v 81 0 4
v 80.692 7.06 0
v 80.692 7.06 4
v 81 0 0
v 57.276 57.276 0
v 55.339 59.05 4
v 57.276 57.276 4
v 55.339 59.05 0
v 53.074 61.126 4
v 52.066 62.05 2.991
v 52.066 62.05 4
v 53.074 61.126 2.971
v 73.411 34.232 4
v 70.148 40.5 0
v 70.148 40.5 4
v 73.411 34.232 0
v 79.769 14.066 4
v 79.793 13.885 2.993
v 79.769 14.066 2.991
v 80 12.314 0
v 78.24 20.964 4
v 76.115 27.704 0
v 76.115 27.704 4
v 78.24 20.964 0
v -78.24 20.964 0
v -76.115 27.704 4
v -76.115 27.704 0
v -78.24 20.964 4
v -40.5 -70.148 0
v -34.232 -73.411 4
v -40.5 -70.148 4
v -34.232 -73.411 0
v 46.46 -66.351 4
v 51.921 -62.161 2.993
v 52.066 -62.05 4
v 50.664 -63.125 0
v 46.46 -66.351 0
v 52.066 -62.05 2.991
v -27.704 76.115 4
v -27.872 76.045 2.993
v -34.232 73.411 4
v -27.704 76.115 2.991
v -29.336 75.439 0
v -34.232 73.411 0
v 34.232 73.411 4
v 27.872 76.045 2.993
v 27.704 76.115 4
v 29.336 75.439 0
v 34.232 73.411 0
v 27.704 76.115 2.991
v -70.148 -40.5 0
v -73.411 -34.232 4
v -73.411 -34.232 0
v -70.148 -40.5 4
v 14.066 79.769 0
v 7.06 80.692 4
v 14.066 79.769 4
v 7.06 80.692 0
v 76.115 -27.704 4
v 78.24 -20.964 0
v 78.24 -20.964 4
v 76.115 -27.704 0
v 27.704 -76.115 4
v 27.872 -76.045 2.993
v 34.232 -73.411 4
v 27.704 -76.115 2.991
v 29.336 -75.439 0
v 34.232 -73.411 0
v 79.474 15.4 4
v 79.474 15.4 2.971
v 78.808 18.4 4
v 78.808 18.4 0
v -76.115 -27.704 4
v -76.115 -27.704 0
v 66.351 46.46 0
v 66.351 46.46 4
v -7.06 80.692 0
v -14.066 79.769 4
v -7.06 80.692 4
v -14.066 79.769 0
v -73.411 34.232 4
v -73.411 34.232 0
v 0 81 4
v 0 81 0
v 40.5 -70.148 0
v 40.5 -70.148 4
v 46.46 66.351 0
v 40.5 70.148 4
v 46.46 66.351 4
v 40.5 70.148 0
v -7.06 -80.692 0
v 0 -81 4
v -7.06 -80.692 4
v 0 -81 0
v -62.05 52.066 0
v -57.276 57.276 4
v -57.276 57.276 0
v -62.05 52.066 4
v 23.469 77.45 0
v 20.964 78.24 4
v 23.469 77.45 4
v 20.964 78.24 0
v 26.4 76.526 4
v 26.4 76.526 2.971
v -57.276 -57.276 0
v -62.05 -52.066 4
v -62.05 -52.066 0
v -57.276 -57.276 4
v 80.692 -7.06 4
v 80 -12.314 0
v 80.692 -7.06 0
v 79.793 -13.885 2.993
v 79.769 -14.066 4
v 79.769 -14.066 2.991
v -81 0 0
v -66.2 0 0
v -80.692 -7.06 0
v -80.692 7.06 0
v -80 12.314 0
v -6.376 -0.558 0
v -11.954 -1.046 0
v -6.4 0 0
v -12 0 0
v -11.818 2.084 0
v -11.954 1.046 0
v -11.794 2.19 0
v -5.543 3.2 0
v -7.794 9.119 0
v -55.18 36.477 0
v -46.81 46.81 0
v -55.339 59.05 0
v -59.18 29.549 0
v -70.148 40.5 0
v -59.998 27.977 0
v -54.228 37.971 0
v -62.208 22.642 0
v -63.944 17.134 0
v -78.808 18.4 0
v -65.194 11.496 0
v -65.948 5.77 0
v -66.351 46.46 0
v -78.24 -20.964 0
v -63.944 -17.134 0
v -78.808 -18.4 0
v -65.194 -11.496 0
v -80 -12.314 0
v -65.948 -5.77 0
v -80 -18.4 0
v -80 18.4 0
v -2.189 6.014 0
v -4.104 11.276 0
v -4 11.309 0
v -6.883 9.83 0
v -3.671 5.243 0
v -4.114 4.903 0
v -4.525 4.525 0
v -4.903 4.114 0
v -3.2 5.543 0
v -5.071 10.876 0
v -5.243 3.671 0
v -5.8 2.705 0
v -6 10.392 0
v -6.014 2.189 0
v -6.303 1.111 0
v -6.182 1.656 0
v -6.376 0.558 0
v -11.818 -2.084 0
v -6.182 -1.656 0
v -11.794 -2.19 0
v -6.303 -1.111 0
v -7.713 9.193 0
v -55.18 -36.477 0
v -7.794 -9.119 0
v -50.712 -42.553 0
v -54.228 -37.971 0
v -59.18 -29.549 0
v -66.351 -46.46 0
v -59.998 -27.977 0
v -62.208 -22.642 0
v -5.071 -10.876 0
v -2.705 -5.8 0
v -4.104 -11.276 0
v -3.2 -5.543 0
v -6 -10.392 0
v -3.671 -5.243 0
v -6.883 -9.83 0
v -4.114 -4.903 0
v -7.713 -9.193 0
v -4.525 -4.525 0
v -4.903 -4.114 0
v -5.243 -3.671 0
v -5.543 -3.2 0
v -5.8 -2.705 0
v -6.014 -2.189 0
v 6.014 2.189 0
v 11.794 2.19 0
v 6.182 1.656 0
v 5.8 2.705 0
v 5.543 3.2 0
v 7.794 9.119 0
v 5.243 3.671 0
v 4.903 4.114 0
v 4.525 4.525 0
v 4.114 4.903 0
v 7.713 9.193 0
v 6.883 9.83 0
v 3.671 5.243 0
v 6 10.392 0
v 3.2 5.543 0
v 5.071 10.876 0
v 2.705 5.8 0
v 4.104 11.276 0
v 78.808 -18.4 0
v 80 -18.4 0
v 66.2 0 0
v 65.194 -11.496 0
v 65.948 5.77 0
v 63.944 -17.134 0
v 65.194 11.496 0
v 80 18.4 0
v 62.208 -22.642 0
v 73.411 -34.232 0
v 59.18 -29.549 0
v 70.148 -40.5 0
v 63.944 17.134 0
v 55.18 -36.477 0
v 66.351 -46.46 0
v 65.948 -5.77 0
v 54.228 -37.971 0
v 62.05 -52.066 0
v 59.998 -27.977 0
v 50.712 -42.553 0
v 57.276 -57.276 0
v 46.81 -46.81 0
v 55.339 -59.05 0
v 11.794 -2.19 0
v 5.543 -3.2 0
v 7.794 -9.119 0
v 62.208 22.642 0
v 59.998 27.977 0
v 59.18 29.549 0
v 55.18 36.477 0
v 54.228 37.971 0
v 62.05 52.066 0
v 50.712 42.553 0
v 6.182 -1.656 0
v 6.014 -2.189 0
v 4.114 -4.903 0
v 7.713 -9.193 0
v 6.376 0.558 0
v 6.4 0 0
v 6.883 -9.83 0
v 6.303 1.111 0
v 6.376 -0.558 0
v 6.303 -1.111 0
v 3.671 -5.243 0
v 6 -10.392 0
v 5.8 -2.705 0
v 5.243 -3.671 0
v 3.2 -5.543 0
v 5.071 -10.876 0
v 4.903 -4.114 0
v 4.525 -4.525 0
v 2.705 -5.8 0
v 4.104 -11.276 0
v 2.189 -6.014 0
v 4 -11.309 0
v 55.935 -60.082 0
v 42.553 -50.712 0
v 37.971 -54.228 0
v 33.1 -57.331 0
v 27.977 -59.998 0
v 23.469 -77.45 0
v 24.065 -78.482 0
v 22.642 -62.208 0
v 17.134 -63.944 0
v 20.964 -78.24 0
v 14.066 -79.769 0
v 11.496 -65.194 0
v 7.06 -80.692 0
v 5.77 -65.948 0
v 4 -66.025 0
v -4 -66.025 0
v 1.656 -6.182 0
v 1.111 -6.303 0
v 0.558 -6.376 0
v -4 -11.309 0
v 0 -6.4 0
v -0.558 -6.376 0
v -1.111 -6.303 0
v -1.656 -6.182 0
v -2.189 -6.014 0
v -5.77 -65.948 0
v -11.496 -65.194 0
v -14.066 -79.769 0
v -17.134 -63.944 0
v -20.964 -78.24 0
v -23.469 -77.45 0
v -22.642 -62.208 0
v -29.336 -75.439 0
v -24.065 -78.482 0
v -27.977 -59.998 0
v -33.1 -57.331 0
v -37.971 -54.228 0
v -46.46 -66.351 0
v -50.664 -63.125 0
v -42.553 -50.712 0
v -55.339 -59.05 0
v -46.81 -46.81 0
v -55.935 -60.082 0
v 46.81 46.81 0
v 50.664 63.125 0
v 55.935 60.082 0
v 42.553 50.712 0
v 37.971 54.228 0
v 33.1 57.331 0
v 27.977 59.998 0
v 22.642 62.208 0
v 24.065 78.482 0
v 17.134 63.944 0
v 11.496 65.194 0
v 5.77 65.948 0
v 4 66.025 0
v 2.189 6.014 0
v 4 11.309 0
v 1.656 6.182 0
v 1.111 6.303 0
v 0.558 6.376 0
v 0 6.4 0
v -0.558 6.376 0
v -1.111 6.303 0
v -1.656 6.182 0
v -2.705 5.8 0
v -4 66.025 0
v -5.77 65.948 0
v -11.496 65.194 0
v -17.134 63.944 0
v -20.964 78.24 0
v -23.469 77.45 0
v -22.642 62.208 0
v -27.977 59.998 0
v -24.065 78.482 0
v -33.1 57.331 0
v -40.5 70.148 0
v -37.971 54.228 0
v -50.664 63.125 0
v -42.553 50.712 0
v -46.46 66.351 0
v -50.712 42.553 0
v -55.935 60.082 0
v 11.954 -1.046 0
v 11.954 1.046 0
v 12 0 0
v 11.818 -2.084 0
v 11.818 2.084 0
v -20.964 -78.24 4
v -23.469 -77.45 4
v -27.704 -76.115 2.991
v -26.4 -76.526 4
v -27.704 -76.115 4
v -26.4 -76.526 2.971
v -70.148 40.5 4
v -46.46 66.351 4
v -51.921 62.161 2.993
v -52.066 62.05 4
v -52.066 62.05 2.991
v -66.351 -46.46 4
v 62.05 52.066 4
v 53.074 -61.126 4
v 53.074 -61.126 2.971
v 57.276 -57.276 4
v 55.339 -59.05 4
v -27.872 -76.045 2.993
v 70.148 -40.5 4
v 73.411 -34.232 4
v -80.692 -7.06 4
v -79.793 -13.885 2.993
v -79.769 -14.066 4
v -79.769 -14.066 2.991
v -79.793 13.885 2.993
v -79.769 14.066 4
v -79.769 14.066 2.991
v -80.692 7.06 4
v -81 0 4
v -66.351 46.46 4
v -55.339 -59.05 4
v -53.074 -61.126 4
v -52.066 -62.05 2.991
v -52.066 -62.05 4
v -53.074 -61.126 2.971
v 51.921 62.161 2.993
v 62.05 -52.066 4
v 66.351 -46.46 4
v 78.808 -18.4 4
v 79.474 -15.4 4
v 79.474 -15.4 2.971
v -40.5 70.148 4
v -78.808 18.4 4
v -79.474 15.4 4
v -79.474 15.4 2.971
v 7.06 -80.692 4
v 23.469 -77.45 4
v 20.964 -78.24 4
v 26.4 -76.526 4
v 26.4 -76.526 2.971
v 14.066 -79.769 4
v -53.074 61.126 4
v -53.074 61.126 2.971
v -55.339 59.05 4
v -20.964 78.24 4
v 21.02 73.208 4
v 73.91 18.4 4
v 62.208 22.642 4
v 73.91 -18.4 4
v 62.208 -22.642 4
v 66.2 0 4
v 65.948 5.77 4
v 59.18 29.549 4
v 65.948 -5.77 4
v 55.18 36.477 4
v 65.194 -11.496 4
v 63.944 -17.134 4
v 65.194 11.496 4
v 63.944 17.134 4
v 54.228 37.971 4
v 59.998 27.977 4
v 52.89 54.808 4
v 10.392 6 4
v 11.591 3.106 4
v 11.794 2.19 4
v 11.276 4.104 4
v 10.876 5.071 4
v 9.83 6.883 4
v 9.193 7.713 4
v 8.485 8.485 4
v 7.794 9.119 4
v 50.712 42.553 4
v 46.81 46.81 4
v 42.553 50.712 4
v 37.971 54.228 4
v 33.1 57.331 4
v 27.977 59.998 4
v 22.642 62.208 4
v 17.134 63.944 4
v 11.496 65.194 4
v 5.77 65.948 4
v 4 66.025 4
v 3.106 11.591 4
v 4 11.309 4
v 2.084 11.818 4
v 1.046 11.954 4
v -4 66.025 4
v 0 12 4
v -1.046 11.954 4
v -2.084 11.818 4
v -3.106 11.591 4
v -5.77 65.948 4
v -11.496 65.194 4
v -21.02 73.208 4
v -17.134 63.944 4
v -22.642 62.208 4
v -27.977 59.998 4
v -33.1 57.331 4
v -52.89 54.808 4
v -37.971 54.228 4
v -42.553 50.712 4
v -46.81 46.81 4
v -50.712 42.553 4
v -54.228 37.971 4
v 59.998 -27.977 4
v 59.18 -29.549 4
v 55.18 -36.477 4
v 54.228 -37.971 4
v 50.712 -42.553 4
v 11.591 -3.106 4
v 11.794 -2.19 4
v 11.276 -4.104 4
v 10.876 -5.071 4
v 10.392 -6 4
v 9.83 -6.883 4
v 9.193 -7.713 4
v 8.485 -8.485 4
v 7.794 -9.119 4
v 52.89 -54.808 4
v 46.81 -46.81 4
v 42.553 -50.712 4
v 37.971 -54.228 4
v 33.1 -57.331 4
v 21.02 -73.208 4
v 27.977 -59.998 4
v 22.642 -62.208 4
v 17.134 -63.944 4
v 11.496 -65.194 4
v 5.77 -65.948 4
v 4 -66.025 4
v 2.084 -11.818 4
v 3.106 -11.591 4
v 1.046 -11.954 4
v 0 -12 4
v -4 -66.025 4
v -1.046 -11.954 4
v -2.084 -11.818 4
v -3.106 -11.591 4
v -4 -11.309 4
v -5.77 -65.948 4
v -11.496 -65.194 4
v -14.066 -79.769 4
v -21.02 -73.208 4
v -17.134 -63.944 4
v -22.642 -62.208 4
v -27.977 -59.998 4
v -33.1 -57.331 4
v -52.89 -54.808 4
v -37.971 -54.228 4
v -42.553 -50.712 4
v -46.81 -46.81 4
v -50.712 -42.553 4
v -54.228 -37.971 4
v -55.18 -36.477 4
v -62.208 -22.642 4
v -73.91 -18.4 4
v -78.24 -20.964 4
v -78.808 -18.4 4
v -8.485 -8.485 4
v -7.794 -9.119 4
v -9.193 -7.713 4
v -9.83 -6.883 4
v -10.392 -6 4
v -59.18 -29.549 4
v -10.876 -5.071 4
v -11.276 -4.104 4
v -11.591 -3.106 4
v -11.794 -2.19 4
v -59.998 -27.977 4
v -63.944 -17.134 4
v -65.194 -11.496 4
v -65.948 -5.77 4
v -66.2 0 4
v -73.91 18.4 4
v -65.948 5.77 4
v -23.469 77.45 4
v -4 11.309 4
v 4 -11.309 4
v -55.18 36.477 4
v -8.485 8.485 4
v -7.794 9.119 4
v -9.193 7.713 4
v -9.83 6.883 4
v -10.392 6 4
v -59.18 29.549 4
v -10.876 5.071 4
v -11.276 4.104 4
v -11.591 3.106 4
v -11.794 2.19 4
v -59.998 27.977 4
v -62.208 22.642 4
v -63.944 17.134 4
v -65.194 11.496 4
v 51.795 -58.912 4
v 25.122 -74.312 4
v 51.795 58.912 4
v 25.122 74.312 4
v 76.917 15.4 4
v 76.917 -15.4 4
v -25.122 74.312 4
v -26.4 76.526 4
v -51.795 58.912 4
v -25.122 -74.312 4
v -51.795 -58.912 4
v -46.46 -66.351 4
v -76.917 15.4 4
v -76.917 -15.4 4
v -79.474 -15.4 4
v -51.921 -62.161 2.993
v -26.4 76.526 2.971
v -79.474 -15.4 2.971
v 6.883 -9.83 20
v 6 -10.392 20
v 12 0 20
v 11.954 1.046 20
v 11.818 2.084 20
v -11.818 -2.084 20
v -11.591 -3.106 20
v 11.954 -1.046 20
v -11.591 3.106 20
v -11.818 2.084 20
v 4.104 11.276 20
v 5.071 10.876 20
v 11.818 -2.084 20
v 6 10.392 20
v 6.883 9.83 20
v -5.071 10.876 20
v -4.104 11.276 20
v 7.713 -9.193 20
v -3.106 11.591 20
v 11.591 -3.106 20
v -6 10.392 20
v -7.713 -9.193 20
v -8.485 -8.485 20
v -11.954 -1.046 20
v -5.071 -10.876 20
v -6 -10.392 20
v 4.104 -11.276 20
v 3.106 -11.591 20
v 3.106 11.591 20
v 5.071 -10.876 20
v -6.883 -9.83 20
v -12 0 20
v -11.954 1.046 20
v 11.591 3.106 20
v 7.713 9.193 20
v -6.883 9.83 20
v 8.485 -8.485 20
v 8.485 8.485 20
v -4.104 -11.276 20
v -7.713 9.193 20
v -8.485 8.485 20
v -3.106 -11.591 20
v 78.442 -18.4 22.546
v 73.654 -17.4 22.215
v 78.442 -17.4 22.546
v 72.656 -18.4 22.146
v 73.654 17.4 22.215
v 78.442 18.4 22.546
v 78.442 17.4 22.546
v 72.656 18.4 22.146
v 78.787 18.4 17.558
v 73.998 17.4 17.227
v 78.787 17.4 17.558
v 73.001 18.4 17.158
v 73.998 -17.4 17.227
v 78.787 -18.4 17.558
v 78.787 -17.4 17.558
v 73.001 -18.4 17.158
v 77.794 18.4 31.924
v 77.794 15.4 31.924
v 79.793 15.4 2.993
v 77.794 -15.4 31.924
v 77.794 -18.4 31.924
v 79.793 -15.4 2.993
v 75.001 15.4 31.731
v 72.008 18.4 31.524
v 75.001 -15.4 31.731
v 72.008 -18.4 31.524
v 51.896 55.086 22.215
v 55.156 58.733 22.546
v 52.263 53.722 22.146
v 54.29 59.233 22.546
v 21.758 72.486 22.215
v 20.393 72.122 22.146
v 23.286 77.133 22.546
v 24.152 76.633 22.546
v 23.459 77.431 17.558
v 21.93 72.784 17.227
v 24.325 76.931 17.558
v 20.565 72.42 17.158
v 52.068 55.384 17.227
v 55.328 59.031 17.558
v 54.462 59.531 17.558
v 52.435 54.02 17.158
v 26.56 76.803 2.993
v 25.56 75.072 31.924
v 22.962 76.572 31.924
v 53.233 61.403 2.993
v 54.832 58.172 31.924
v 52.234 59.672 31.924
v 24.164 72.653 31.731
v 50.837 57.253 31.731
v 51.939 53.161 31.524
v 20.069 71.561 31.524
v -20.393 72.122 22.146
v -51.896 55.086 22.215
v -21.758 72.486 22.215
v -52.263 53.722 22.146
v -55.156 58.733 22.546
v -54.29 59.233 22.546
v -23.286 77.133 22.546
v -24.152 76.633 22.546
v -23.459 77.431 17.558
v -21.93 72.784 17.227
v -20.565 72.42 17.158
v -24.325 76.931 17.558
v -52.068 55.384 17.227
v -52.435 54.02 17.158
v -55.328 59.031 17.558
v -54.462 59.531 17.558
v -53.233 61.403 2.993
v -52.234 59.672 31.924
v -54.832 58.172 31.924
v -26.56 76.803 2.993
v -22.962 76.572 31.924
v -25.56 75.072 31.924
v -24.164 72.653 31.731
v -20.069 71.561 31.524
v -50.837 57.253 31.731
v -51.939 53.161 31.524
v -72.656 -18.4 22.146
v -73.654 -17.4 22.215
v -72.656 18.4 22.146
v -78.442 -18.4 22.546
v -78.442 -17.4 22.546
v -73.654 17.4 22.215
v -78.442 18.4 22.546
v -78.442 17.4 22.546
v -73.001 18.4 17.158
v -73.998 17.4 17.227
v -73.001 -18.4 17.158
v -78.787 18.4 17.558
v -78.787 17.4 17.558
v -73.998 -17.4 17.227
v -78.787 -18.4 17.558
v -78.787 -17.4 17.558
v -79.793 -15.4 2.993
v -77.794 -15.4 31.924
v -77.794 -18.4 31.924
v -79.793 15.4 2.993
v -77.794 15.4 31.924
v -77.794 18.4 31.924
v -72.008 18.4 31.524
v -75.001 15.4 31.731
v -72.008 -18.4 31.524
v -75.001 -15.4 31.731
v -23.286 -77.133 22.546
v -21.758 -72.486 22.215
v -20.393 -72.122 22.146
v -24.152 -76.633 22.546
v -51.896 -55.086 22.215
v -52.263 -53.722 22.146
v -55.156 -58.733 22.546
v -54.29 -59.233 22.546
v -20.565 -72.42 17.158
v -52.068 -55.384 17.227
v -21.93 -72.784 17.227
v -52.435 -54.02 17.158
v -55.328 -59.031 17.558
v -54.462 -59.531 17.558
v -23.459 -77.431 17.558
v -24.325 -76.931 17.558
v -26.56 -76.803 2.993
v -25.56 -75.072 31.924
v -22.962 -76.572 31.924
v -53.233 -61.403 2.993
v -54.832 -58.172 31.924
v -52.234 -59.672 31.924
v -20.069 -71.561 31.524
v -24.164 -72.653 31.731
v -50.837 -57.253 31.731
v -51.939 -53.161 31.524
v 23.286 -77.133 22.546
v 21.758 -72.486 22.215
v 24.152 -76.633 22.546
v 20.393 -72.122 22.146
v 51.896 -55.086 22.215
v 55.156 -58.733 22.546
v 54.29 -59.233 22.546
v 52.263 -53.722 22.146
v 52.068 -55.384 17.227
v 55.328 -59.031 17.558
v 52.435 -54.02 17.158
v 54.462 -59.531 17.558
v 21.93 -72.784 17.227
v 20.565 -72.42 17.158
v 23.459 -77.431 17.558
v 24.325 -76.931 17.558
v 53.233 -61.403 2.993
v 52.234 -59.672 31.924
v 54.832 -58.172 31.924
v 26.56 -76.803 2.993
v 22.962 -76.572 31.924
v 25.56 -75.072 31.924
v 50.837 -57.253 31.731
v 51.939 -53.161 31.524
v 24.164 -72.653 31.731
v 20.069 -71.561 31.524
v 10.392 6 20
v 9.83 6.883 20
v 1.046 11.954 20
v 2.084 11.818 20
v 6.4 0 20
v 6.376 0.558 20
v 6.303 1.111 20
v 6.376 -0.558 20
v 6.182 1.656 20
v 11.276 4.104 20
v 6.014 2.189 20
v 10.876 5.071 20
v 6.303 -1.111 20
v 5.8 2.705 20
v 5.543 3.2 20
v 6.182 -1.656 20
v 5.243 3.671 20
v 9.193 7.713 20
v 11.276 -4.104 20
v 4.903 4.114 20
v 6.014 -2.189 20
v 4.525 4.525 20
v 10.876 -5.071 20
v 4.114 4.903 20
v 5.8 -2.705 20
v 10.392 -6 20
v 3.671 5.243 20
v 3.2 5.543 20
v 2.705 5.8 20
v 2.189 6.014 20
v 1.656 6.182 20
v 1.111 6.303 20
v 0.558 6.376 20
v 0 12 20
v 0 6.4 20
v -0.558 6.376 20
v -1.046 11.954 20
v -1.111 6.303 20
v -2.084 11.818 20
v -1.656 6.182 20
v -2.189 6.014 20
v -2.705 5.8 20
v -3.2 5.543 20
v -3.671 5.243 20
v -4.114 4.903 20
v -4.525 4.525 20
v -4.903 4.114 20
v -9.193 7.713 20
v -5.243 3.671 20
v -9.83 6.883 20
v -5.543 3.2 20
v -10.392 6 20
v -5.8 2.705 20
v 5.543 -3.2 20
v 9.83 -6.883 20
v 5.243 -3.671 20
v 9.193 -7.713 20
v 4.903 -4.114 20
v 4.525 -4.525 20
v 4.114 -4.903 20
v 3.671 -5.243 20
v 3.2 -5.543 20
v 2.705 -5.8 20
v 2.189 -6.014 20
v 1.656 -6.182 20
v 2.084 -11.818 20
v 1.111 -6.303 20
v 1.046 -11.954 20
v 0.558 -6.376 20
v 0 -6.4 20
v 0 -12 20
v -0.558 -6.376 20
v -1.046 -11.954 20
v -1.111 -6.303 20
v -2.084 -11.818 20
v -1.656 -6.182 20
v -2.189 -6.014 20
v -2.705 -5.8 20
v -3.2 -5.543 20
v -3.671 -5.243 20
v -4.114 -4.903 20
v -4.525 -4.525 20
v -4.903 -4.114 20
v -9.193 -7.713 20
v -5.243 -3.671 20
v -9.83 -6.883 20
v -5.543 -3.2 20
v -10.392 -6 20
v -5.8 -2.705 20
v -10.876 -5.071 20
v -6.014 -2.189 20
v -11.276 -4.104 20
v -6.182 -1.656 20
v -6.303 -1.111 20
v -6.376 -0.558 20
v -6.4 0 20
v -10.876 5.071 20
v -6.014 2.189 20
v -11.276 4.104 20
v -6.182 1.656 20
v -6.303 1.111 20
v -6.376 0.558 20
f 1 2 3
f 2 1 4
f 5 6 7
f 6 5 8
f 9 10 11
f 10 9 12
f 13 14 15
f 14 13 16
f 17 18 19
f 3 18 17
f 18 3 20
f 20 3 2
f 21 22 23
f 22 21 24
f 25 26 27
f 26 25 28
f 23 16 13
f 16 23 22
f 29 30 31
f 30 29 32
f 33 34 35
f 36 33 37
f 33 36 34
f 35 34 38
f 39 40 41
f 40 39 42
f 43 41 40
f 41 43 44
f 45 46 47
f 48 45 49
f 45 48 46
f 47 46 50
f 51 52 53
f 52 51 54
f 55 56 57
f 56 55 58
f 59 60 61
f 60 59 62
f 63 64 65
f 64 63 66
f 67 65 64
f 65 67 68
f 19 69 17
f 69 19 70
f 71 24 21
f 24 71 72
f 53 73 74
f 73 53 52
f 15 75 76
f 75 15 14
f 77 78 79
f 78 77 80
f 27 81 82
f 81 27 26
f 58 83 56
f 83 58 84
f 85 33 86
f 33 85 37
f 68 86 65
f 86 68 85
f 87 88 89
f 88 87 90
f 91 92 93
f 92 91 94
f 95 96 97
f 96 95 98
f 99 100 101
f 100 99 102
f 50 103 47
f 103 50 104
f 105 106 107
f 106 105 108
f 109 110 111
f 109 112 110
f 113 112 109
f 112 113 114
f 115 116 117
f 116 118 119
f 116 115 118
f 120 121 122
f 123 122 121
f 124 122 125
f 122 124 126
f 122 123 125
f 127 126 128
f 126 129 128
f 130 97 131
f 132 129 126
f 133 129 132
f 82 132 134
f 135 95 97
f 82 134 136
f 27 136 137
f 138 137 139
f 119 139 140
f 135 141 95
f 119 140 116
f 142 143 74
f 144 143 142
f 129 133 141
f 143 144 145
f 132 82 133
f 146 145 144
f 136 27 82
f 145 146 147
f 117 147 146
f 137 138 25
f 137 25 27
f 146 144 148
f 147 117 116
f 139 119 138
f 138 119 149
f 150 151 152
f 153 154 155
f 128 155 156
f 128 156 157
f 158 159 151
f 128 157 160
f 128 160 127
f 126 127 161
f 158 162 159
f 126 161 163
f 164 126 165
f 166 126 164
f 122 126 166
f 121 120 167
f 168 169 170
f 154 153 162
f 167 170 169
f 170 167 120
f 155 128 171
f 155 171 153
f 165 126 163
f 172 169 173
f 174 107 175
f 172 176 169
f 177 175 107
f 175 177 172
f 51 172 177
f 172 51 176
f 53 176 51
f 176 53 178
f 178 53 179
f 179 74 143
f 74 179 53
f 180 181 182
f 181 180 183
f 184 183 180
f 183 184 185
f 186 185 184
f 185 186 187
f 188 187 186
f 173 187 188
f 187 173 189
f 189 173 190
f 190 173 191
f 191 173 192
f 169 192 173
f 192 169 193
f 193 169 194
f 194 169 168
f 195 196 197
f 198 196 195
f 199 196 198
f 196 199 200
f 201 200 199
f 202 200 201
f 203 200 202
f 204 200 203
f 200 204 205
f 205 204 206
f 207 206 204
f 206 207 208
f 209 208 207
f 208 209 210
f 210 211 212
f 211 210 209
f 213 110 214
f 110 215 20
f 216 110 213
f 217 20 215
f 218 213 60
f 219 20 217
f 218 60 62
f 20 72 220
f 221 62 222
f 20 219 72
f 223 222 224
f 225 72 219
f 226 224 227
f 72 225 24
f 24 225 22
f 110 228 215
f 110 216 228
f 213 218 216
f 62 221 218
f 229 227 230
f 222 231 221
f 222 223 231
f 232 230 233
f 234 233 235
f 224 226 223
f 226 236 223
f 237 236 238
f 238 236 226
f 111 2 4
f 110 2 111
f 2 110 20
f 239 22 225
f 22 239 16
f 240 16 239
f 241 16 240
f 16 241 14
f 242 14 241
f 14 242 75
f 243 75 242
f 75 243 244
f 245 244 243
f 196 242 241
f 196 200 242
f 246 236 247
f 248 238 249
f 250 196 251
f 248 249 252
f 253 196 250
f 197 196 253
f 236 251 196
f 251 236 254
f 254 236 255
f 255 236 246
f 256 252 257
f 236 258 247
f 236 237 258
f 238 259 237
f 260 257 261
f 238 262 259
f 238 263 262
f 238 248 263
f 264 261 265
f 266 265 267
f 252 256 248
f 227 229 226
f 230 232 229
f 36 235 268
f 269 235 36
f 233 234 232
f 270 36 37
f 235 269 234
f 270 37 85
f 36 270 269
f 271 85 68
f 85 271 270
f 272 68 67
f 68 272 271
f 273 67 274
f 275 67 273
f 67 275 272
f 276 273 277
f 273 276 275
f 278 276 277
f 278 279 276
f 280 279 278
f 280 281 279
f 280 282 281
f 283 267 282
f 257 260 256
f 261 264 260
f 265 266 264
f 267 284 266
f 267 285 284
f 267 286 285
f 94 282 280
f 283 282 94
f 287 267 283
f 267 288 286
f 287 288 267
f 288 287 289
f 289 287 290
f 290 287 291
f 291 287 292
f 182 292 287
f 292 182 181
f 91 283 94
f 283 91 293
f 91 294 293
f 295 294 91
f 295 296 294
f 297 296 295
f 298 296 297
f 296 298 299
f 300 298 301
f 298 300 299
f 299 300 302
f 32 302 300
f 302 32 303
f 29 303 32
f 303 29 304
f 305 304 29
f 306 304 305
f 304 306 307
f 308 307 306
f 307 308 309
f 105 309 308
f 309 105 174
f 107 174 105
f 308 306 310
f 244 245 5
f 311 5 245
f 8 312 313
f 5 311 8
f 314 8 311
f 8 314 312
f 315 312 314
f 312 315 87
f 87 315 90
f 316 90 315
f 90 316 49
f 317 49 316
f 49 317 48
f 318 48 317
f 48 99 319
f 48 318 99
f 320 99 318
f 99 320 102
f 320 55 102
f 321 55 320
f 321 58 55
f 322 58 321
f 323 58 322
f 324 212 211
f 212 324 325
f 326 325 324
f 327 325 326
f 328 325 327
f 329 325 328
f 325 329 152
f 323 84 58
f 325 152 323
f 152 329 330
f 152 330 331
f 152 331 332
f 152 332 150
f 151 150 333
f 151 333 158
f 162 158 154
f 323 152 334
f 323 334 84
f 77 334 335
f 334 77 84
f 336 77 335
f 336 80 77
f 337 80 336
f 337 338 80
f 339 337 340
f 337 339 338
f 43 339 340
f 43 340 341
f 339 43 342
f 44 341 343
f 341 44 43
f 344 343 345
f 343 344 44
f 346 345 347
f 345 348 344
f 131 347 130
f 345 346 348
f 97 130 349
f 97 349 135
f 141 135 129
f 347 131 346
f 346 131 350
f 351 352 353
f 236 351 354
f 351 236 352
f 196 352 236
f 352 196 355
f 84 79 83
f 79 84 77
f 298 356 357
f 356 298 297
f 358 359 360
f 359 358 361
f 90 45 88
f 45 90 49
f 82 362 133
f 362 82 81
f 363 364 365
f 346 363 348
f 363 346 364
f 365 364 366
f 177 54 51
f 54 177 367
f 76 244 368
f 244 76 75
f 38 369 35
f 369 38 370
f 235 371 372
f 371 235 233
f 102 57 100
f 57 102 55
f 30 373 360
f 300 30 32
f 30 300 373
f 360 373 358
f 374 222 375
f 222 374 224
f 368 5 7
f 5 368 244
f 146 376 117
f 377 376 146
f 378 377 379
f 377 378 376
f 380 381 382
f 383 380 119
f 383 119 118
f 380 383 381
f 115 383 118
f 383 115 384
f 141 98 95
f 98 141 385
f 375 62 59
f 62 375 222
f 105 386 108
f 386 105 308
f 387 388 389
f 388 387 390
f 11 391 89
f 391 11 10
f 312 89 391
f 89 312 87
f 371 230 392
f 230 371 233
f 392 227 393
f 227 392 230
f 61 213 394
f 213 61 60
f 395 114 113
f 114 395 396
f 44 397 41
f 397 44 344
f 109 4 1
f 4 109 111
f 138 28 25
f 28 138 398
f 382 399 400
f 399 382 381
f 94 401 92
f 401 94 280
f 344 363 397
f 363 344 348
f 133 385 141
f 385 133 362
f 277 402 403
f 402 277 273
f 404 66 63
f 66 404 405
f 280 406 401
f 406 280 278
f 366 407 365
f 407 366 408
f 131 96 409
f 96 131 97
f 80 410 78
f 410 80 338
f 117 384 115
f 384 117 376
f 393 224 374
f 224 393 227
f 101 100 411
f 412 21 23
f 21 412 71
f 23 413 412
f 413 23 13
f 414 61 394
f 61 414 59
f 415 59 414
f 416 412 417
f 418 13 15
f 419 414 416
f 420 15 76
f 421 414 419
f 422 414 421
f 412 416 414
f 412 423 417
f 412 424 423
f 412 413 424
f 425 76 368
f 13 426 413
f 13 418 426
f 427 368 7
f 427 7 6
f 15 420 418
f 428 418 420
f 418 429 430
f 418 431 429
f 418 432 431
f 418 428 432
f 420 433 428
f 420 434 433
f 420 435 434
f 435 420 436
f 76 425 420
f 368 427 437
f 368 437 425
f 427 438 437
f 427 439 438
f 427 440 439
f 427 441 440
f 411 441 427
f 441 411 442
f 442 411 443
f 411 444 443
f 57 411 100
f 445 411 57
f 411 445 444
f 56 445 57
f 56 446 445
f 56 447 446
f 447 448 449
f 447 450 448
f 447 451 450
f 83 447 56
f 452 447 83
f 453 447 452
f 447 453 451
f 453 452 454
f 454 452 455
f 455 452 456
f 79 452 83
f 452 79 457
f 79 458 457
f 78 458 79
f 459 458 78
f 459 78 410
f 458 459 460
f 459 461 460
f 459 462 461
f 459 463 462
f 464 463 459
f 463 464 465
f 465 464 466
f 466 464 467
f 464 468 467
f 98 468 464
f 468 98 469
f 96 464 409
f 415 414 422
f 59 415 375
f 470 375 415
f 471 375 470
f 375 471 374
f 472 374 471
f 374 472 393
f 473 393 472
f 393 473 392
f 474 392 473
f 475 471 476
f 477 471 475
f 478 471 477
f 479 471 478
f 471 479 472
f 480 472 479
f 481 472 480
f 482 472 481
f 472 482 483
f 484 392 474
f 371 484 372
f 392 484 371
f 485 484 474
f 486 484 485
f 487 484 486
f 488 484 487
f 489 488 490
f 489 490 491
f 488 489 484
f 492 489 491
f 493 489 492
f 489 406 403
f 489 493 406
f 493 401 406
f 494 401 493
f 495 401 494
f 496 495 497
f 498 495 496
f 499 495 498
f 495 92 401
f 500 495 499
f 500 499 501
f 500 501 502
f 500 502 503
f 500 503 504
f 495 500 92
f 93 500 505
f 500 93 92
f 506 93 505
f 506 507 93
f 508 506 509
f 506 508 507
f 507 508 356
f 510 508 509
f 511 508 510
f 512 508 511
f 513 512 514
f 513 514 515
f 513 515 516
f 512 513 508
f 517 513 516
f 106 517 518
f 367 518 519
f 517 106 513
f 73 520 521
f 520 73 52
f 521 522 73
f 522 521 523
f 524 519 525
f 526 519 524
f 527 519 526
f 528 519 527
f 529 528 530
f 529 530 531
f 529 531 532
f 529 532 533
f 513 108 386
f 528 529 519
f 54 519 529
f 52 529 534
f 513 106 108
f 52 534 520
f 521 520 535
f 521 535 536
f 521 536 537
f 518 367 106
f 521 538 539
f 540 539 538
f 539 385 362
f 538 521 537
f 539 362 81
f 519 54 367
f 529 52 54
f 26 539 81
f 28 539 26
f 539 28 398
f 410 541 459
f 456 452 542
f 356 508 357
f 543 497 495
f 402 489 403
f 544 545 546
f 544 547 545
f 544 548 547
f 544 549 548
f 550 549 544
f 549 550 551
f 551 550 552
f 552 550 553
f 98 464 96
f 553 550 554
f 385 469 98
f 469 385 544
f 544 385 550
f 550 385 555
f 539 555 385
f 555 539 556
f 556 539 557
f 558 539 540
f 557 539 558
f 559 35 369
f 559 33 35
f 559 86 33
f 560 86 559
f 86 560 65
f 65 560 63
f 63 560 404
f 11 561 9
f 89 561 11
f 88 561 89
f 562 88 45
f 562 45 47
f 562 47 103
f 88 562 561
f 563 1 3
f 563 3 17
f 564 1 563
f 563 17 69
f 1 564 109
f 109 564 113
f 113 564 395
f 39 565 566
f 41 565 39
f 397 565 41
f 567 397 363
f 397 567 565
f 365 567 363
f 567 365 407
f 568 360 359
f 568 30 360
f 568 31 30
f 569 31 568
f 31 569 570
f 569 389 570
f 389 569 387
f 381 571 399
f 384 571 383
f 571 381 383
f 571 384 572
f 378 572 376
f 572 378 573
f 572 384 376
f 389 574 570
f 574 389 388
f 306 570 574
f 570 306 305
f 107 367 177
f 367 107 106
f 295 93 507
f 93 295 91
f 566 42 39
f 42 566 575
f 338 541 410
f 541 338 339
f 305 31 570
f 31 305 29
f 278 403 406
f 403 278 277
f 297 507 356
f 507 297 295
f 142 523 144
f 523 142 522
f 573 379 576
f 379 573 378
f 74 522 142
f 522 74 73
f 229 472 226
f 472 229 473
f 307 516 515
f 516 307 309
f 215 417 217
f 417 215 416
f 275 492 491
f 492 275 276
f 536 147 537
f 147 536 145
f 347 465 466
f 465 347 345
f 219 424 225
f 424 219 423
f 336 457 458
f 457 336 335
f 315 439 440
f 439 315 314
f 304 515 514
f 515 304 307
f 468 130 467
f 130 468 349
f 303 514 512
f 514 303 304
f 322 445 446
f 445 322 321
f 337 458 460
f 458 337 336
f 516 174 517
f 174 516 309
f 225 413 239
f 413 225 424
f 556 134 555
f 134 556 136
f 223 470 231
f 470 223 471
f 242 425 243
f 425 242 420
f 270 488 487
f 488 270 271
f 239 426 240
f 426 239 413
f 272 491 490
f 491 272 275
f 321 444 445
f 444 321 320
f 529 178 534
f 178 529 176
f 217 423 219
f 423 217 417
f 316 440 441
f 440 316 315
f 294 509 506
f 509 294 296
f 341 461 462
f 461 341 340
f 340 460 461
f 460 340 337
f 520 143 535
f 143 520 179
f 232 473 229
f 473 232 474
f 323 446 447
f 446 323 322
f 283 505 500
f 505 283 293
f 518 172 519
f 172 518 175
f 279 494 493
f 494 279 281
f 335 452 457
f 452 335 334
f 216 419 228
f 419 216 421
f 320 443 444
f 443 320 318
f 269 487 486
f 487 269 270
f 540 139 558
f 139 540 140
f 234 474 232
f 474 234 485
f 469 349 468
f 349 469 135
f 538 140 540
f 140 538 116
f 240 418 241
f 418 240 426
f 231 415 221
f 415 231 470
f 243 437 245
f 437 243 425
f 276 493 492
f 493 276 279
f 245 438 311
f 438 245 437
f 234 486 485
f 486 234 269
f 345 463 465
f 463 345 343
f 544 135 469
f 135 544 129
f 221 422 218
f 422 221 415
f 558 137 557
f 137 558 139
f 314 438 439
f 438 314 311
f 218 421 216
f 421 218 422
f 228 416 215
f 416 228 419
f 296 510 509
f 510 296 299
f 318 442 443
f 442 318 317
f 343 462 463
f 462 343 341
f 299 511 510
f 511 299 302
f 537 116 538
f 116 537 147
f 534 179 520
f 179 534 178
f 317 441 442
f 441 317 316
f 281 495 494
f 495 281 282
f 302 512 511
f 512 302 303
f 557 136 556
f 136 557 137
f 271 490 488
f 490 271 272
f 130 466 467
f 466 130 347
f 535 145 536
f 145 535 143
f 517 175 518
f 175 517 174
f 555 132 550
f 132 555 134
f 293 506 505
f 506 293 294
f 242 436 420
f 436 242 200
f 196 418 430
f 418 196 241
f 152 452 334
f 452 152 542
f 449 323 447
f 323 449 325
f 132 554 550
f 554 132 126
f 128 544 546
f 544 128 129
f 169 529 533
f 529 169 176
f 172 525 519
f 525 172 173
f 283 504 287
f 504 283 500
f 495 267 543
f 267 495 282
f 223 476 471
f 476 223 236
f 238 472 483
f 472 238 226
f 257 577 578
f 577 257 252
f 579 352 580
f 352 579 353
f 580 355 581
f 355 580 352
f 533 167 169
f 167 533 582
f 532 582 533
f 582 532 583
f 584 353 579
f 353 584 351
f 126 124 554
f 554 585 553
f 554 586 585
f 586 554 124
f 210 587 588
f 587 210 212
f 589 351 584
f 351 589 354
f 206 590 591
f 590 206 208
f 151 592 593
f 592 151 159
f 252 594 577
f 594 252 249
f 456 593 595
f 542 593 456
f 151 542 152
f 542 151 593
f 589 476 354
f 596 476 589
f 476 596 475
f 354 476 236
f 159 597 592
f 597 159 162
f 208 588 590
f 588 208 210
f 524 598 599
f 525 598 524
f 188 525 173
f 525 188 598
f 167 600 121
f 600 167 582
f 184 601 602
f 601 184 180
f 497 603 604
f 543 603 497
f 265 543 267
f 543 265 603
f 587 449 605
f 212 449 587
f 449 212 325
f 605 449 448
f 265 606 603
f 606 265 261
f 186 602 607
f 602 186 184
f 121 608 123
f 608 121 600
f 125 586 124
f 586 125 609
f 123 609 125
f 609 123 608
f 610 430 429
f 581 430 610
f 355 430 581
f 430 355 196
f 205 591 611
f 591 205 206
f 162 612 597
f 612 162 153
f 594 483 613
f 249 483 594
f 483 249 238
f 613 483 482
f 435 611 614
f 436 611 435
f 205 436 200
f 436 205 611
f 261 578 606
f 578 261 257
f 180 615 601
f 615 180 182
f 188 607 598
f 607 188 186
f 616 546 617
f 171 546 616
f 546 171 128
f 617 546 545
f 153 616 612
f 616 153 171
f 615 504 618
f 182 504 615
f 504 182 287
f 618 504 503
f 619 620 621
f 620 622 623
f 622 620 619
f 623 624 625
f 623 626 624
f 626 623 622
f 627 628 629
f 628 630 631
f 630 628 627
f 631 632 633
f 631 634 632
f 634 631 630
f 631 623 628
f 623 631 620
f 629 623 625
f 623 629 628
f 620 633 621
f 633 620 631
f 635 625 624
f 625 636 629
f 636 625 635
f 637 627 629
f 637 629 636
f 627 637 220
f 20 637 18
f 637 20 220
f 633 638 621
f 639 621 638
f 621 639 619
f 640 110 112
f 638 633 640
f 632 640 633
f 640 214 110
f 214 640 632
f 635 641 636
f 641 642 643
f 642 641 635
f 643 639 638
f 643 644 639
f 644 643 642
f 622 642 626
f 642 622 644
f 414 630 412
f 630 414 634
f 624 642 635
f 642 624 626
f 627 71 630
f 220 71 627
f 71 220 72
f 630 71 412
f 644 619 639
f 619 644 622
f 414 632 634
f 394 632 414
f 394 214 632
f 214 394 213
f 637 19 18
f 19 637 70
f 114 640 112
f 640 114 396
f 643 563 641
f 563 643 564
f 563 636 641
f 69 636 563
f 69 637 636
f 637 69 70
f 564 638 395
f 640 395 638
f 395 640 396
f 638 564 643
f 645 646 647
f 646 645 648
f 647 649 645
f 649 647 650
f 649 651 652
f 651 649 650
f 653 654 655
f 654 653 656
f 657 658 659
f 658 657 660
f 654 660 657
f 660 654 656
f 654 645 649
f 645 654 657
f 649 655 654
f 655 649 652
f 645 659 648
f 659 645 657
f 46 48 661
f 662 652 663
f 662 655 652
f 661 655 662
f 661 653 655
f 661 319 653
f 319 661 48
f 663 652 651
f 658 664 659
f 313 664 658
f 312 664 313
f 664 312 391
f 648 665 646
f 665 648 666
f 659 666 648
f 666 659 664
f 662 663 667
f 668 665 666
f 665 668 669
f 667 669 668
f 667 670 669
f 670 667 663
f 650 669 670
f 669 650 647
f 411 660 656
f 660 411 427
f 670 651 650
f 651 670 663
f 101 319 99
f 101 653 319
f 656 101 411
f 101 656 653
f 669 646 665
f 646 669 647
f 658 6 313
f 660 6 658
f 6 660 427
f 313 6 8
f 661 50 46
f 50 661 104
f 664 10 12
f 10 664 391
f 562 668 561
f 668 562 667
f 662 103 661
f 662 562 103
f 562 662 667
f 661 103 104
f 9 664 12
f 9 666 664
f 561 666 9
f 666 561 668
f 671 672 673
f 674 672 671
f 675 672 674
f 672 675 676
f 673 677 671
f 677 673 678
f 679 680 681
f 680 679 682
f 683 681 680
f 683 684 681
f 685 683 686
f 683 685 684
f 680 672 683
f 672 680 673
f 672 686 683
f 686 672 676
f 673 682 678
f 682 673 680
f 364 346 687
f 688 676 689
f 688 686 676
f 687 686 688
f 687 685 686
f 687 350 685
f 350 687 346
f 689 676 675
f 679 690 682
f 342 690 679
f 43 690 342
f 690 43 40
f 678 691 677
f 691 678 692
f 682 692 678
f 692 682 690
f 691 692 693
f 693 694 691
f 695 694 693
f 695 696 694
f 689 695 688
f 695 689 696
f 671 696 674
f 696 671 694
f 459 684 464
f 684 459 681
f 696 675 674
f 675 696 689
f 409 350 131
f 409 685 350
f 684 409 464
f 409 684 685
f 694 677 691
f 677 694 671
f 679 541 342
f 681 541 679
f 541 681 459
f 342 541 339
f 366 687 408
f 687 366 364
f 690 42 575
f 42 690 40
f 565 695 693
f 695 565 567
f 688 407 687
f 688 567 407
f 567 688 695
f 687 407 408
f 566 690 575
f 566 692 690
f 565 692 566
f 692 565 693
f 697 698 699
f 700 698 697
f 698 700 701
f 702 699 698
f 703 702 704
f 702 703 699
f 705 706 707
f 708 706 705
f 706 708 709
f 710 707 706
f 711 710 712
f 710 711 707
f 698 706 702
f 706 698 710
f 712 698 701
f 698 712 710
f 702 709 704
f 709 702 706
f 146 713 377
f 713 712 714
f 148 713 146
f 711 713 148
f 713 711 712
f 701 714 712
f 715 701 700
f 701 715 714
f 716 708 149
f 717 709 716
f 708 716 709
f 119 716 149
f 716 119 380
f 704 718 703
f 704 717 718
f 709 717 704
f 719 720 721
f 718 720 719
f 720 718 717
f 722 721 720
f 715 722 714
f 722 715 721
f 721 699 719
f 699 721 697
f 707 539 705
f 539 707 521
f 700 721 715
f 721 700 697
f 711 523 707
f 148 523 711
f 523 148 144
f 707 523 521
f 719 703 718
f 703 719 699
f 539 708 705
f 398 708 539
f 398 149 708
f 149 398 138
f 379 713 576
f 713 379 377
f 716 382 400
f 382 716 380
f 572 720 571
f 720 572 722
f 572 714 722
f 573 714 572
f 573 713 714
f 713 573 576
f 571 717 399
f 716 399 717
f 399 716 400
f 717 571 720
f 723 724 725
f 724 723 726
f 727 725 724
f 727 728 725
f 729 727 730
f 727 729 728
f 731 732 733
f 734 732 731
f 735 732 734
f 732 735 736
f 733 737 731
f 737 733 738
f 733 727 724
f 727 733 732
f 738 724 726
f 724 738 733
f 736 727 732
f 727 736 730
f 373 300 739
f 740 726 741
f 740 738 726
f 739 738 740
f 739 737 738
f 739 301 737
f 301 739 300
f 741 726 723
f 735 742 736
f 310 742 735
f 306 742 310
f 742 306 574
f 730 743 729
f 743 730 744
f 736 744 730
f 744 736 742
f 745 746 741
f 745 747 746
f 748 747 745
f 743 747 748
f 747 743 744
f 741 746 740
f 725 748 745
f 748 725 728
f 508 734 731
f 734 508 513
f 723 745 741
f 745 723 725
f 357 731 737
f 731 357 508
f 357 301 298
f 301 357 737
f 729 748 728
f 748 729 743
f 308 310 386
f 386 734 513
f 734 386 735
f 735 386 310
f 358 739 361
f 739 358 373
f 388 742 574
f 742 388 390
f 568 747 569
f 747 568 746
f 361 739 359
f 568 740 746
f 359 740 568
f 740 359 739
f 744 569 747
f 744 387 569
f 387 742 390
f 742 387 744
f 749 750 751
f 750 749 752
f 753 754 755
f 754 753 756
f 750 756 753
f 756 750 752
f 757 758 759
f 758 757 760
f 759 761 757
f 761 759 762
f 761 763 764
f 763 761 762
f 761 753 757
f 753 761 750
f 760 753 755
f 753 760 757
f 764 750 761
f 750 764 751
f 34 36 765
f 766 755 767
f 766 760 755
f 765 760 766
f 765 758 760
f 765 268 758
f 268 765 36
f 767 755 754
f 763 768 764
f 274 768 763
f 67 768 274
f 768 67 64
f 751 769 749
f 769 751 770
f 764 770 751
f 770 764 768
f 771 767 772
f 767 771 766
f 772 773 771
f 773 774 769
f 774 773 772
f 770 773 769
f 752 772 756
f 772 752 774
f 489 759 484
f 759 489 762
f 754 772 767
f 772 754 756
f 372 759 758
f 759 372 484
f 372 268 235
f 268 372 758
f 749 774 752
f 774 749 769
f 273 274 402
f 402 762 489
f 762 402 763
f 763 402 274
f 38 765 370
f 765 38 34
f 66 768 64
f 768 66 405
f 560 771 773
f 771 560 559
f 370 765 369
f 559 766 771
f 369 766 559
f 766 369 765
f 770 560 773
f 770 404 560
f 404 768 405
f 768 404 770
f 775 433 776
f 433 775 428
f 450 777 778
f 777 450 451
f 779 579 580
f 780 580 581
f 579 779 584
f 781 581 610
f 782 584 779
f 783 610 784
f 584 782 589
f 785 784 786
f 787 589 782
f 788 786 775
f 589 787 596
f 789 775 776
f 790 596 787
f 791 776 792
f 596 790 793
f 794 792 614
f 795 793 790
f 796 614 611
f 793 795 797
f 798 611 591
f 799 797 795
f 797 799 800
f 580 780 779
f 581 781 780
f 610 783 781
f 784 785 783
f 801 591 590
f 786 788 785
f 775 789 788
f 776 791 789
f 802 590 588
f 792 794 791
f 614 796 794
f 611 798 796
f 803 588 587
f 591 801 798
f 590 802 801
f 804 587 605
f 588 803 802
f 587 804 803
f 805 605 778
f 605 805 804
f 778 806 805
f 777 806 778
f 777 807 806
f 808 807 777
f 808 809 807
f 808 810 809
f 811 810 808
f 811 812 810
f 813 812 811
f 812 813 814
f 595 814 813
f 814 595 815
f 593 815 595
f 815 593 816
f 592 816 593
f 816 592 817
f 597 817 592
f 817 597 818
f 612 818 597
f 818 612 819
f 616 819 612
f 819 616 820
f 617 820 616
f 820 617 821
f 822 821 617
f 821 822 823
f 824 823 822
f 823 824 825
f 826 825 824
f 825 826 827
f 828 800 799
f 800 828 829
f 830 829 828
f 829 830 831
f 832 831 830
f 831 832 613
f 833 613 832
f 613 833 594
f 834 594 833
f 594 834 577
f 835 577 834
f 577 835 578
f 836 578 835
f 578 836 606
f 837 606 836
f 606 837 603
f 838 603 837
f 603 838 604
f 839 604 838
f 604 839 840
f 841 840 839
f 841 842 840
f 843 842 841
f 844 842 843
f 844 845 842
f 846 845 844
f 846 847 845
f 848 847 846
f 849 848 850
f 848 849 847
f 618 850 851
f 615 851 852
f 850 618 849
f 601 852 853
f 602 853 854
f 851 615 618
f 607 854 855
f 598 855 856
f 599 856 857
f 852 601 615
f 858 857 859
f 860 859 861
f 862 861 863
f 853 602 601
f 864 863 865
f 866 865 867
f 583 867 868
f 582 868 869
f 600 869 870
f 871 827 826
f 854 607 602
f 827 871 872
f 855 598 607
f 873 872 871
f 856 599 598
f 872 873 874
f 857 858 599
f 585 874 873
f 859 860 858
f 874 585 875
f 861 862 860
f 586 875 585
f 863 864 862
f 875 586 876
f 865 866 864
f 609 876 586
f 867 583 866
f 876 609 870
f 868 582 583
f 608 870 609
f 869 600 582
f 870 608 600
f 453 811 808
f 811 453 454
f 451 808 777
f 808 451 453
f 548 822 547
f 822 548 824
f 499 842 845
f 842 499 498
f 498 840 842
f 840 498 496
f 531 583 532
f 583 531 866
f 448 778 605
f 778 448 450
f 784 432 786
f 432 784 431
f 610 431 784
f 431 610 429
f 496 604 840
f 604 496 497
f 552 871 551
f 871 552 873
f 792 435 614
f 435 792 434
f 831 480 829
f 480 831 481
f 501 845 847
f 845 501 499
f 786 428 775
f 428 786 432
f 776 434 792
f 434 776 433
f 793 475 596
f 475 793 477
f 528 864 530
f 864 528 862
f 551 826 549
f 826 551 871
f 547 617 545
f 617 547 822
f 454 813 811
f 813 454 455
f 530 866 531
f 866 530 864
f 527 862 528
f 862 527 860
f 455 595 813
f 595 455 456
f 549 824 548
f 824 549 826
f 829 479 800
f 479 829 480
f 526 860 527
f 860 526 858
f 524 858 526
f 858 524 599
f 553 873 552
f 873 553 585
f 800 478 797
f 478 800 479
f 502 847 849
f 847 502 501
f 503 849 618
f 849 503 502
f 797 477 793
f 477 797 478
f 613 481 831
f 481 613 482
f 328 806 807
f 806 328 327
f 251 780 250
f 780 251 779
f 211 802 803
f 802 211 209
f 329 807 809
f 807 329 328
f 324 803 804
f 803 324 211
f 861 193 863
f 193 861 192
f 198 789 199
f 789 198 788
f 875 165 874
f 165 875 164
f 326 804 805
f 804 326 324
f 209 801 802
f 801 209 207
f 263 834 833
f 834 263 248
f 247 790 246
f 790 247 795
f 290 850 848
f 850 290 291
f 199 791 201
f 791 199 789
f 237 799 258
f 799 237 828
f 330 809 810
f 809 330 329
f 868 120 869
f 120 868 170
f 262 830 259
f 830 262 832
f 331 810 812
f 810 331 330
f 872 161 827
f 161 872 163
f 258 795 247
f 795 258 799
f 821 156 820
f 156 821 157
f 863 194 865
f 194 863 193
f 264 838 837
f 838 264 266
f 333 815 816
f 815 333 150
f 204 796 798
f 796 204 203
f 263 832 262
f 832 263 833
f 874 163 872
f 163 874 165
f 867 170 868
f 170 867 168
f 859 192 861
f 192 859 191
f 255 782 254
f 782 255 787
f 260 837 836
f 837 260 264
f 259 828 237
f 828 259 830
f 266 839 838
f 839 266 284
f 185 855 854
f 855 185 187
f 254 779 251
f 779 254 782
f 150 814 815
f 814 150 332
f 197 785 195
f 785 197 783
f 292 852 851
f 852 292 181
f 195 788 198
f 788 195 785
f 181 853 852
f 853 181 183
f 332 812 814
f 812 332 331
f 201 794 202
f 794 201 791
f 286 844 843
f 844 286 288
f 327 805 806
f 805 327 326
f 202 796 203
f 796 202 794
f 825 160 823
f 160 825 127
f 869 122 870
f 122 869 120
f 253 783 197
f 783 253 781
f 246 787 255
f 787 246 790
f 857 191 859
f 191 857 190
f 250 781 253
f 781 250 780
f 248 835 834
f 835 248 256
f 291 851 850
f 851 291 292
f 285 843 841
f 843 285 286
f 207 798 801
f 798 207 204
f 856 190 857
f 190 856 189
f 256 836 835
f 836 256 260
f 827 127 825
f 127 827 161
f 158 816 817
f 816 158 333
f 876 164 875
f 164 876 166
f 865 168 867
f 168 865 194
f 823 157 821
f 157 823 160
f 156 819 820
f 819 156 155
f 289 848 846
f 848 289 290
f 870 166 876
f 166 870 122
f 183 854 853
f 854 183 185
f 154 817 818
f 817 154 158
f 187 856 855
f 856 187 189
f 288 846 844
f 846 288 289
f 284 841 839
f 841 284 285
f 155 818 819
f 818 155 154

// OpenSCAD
// file: lib.scad
// Shared pieces for the Winterlight PETG parts (Bambu Lab A1, 256 × 256 × 256 mm).
// Millimetres. Measure your own mounting strip and set strip_w / strip_t on the
// command line (-D strip_w=20) or in OpenSCAD's Customizer before printing.
$fn = 72;
strip_w = 30;   // pixel mounting strip width
strip_t = 2;    // pixel mounting strip thickness
clr = 0.4;      // clearance per side, a snug slide fit in PETG
wall = 3;       // channel walls
tie_d = 4.5;    // holes for the 2.5 mm cable ties or an M4 bolt

slot_t = strip_t + 2*clr;
slot_w = strip_w + 2*clr;
// Outside size of a strip channel: radial depth and tangential width.
ch_depth = slot_t + wall;
ch_width = slot_w + 2*wall;

// A channel that holds a strip's end: the strip runs up +Z with its face
// (and its pixels) towards +X. Open on the +X side so the strip drops in,
// with a groove round the outside where a cable tie pulls it home.
module channel(h, floor = 3) {
  z0 = h*0.55;
  difference() {
    translate([-ch_depth, -ch_width/2, 0]) cube([ch_depth, ch_width, h]);
    translate([-slot_t, -slot_w/2, floor]) cube([slot_t + 1, slot_w, h]);
    // Tie groove, 1 mm deep, round the back and both sides.
    difference() {
      translate([-ch_depth - 1, -ch_width/2 - 1, z0]) cube([ch_depth + 2, ch_width + 2, 5]);
      translate([-ch_depth + 1, -ch_width/2 + 1, z0 - 1]) cube([ch_depth + 2, ch_width - 2, 7]);
    }
  }
}

// n channels on a circle of radius r (the strip's face), leaning by tilt
// degrees: positive leans the top inwards, negative outwards.
module channel_ring(n, r, tilt, h, start = 0) {
  intersection() {
    for (i = [0 : n - 1]) rotate([0, 0, start + 360*i/n])
      translate([r, 0, 0]) rotate([0, -tilt, 0]) channel(h);
    translate([-1000, -1000, 0]) cube([2000, 2000, 1000]);
  }
}

// A flat ring with spokes to a centre boss: the plate that ties the channels together.
module spoked_ring(r_out, r_in, t, n, boss_d, arm_w = 8) {
  difference() { cylinder(r = r_out, h = t); translate([0, 0, -1]) cylinder(r = r_in, h = t + 2); }
  for (i = [0 : n - 1]) rotate([0, 0, 360*i/n + 180/n]) translate([0, -arm_w/2, 0]) cube([r_in + 1, arm_w, t]);
  cylinder(d = boss_d, h = t);
}

// Bricks for ballast: the paving in front of the house is stone, so nothing
// can be staked into it. The feet are trays that hold standard concrete paving
// bricks (betonklinkers, 22 × 11 × 8 cm, about 4 kg each). Set your own size.
brick_l = 220;
brick_w = 110;
brick_h = 80;
brick_clr = 3;      // bricks vary a few millimetres
tray_wall = 1.6;
tray_h = 20;
tray_lip = 10;      // the floor is only a ledge round the edge, to save PETG
tray_floor = 1.6;

// A tray for n bricks side by side along Y, its corner at the origin.
// gap: extra room between the bricks (for a rib); returns nothing, see tray_size.
function tray_inner(n = 1, gap = 0) = [brick_l + 2*brick_clr, n*(brick_w + 2*brick_clr) + gap];
module tray(n = 1, gap = 0) {
  in = tray_inner(n, gap);
  out = [in[0] + 2*tray_wall, in[1] + 2*tray_wall];
  difference() {
    cube([out[0], out[1], tray_h]);
    translate([tray_wall, tray_wall, tray_floor]) cube([in[0], in[1], tray_h]);
    translate([tray_wall + tray_lip, tray_wall + tray_lip, -1]) cube([in[0] - 2*tray_lip, in[1] - 2*tray_lip, tray_floor + 2]);
  }
}
// main file
// Mini tree, base ring. Six strip spokes stand in its channels and lean in to
// the top cap; an 8 mm rod through the centre stiffens the tree and pushes
// into the clipped bush it stands on. Print as is, flat side down, no supports.
include <lib.scad>
spokes = 6;
r_base = 80;     // spoke radius at the base (the model's 8 cm)
r_top = 42;      // spoke radius at the top cap: room for six 30 mm channels
height = 550;    // base to tip, as in the model
rod_d = 12;      // centre rod: 10–12 mm bamboo cane
ch_h = 32;
tilt = atan((r_base - r_top)/height);
plate = 4;

difference() {
  union() {
    spoked_ring(r_base + 1, r_base - ch_depth - 8, plate, spokes, rod_d + 12);
    cylinder(d = rod_d + 12, h = 20);
    channel_ring(spokes, r_base, tilt, ch_h);
  }
  translate([0, 0, -1]) cylinder(d = rod_d + 2*clr, h = 30);
}
